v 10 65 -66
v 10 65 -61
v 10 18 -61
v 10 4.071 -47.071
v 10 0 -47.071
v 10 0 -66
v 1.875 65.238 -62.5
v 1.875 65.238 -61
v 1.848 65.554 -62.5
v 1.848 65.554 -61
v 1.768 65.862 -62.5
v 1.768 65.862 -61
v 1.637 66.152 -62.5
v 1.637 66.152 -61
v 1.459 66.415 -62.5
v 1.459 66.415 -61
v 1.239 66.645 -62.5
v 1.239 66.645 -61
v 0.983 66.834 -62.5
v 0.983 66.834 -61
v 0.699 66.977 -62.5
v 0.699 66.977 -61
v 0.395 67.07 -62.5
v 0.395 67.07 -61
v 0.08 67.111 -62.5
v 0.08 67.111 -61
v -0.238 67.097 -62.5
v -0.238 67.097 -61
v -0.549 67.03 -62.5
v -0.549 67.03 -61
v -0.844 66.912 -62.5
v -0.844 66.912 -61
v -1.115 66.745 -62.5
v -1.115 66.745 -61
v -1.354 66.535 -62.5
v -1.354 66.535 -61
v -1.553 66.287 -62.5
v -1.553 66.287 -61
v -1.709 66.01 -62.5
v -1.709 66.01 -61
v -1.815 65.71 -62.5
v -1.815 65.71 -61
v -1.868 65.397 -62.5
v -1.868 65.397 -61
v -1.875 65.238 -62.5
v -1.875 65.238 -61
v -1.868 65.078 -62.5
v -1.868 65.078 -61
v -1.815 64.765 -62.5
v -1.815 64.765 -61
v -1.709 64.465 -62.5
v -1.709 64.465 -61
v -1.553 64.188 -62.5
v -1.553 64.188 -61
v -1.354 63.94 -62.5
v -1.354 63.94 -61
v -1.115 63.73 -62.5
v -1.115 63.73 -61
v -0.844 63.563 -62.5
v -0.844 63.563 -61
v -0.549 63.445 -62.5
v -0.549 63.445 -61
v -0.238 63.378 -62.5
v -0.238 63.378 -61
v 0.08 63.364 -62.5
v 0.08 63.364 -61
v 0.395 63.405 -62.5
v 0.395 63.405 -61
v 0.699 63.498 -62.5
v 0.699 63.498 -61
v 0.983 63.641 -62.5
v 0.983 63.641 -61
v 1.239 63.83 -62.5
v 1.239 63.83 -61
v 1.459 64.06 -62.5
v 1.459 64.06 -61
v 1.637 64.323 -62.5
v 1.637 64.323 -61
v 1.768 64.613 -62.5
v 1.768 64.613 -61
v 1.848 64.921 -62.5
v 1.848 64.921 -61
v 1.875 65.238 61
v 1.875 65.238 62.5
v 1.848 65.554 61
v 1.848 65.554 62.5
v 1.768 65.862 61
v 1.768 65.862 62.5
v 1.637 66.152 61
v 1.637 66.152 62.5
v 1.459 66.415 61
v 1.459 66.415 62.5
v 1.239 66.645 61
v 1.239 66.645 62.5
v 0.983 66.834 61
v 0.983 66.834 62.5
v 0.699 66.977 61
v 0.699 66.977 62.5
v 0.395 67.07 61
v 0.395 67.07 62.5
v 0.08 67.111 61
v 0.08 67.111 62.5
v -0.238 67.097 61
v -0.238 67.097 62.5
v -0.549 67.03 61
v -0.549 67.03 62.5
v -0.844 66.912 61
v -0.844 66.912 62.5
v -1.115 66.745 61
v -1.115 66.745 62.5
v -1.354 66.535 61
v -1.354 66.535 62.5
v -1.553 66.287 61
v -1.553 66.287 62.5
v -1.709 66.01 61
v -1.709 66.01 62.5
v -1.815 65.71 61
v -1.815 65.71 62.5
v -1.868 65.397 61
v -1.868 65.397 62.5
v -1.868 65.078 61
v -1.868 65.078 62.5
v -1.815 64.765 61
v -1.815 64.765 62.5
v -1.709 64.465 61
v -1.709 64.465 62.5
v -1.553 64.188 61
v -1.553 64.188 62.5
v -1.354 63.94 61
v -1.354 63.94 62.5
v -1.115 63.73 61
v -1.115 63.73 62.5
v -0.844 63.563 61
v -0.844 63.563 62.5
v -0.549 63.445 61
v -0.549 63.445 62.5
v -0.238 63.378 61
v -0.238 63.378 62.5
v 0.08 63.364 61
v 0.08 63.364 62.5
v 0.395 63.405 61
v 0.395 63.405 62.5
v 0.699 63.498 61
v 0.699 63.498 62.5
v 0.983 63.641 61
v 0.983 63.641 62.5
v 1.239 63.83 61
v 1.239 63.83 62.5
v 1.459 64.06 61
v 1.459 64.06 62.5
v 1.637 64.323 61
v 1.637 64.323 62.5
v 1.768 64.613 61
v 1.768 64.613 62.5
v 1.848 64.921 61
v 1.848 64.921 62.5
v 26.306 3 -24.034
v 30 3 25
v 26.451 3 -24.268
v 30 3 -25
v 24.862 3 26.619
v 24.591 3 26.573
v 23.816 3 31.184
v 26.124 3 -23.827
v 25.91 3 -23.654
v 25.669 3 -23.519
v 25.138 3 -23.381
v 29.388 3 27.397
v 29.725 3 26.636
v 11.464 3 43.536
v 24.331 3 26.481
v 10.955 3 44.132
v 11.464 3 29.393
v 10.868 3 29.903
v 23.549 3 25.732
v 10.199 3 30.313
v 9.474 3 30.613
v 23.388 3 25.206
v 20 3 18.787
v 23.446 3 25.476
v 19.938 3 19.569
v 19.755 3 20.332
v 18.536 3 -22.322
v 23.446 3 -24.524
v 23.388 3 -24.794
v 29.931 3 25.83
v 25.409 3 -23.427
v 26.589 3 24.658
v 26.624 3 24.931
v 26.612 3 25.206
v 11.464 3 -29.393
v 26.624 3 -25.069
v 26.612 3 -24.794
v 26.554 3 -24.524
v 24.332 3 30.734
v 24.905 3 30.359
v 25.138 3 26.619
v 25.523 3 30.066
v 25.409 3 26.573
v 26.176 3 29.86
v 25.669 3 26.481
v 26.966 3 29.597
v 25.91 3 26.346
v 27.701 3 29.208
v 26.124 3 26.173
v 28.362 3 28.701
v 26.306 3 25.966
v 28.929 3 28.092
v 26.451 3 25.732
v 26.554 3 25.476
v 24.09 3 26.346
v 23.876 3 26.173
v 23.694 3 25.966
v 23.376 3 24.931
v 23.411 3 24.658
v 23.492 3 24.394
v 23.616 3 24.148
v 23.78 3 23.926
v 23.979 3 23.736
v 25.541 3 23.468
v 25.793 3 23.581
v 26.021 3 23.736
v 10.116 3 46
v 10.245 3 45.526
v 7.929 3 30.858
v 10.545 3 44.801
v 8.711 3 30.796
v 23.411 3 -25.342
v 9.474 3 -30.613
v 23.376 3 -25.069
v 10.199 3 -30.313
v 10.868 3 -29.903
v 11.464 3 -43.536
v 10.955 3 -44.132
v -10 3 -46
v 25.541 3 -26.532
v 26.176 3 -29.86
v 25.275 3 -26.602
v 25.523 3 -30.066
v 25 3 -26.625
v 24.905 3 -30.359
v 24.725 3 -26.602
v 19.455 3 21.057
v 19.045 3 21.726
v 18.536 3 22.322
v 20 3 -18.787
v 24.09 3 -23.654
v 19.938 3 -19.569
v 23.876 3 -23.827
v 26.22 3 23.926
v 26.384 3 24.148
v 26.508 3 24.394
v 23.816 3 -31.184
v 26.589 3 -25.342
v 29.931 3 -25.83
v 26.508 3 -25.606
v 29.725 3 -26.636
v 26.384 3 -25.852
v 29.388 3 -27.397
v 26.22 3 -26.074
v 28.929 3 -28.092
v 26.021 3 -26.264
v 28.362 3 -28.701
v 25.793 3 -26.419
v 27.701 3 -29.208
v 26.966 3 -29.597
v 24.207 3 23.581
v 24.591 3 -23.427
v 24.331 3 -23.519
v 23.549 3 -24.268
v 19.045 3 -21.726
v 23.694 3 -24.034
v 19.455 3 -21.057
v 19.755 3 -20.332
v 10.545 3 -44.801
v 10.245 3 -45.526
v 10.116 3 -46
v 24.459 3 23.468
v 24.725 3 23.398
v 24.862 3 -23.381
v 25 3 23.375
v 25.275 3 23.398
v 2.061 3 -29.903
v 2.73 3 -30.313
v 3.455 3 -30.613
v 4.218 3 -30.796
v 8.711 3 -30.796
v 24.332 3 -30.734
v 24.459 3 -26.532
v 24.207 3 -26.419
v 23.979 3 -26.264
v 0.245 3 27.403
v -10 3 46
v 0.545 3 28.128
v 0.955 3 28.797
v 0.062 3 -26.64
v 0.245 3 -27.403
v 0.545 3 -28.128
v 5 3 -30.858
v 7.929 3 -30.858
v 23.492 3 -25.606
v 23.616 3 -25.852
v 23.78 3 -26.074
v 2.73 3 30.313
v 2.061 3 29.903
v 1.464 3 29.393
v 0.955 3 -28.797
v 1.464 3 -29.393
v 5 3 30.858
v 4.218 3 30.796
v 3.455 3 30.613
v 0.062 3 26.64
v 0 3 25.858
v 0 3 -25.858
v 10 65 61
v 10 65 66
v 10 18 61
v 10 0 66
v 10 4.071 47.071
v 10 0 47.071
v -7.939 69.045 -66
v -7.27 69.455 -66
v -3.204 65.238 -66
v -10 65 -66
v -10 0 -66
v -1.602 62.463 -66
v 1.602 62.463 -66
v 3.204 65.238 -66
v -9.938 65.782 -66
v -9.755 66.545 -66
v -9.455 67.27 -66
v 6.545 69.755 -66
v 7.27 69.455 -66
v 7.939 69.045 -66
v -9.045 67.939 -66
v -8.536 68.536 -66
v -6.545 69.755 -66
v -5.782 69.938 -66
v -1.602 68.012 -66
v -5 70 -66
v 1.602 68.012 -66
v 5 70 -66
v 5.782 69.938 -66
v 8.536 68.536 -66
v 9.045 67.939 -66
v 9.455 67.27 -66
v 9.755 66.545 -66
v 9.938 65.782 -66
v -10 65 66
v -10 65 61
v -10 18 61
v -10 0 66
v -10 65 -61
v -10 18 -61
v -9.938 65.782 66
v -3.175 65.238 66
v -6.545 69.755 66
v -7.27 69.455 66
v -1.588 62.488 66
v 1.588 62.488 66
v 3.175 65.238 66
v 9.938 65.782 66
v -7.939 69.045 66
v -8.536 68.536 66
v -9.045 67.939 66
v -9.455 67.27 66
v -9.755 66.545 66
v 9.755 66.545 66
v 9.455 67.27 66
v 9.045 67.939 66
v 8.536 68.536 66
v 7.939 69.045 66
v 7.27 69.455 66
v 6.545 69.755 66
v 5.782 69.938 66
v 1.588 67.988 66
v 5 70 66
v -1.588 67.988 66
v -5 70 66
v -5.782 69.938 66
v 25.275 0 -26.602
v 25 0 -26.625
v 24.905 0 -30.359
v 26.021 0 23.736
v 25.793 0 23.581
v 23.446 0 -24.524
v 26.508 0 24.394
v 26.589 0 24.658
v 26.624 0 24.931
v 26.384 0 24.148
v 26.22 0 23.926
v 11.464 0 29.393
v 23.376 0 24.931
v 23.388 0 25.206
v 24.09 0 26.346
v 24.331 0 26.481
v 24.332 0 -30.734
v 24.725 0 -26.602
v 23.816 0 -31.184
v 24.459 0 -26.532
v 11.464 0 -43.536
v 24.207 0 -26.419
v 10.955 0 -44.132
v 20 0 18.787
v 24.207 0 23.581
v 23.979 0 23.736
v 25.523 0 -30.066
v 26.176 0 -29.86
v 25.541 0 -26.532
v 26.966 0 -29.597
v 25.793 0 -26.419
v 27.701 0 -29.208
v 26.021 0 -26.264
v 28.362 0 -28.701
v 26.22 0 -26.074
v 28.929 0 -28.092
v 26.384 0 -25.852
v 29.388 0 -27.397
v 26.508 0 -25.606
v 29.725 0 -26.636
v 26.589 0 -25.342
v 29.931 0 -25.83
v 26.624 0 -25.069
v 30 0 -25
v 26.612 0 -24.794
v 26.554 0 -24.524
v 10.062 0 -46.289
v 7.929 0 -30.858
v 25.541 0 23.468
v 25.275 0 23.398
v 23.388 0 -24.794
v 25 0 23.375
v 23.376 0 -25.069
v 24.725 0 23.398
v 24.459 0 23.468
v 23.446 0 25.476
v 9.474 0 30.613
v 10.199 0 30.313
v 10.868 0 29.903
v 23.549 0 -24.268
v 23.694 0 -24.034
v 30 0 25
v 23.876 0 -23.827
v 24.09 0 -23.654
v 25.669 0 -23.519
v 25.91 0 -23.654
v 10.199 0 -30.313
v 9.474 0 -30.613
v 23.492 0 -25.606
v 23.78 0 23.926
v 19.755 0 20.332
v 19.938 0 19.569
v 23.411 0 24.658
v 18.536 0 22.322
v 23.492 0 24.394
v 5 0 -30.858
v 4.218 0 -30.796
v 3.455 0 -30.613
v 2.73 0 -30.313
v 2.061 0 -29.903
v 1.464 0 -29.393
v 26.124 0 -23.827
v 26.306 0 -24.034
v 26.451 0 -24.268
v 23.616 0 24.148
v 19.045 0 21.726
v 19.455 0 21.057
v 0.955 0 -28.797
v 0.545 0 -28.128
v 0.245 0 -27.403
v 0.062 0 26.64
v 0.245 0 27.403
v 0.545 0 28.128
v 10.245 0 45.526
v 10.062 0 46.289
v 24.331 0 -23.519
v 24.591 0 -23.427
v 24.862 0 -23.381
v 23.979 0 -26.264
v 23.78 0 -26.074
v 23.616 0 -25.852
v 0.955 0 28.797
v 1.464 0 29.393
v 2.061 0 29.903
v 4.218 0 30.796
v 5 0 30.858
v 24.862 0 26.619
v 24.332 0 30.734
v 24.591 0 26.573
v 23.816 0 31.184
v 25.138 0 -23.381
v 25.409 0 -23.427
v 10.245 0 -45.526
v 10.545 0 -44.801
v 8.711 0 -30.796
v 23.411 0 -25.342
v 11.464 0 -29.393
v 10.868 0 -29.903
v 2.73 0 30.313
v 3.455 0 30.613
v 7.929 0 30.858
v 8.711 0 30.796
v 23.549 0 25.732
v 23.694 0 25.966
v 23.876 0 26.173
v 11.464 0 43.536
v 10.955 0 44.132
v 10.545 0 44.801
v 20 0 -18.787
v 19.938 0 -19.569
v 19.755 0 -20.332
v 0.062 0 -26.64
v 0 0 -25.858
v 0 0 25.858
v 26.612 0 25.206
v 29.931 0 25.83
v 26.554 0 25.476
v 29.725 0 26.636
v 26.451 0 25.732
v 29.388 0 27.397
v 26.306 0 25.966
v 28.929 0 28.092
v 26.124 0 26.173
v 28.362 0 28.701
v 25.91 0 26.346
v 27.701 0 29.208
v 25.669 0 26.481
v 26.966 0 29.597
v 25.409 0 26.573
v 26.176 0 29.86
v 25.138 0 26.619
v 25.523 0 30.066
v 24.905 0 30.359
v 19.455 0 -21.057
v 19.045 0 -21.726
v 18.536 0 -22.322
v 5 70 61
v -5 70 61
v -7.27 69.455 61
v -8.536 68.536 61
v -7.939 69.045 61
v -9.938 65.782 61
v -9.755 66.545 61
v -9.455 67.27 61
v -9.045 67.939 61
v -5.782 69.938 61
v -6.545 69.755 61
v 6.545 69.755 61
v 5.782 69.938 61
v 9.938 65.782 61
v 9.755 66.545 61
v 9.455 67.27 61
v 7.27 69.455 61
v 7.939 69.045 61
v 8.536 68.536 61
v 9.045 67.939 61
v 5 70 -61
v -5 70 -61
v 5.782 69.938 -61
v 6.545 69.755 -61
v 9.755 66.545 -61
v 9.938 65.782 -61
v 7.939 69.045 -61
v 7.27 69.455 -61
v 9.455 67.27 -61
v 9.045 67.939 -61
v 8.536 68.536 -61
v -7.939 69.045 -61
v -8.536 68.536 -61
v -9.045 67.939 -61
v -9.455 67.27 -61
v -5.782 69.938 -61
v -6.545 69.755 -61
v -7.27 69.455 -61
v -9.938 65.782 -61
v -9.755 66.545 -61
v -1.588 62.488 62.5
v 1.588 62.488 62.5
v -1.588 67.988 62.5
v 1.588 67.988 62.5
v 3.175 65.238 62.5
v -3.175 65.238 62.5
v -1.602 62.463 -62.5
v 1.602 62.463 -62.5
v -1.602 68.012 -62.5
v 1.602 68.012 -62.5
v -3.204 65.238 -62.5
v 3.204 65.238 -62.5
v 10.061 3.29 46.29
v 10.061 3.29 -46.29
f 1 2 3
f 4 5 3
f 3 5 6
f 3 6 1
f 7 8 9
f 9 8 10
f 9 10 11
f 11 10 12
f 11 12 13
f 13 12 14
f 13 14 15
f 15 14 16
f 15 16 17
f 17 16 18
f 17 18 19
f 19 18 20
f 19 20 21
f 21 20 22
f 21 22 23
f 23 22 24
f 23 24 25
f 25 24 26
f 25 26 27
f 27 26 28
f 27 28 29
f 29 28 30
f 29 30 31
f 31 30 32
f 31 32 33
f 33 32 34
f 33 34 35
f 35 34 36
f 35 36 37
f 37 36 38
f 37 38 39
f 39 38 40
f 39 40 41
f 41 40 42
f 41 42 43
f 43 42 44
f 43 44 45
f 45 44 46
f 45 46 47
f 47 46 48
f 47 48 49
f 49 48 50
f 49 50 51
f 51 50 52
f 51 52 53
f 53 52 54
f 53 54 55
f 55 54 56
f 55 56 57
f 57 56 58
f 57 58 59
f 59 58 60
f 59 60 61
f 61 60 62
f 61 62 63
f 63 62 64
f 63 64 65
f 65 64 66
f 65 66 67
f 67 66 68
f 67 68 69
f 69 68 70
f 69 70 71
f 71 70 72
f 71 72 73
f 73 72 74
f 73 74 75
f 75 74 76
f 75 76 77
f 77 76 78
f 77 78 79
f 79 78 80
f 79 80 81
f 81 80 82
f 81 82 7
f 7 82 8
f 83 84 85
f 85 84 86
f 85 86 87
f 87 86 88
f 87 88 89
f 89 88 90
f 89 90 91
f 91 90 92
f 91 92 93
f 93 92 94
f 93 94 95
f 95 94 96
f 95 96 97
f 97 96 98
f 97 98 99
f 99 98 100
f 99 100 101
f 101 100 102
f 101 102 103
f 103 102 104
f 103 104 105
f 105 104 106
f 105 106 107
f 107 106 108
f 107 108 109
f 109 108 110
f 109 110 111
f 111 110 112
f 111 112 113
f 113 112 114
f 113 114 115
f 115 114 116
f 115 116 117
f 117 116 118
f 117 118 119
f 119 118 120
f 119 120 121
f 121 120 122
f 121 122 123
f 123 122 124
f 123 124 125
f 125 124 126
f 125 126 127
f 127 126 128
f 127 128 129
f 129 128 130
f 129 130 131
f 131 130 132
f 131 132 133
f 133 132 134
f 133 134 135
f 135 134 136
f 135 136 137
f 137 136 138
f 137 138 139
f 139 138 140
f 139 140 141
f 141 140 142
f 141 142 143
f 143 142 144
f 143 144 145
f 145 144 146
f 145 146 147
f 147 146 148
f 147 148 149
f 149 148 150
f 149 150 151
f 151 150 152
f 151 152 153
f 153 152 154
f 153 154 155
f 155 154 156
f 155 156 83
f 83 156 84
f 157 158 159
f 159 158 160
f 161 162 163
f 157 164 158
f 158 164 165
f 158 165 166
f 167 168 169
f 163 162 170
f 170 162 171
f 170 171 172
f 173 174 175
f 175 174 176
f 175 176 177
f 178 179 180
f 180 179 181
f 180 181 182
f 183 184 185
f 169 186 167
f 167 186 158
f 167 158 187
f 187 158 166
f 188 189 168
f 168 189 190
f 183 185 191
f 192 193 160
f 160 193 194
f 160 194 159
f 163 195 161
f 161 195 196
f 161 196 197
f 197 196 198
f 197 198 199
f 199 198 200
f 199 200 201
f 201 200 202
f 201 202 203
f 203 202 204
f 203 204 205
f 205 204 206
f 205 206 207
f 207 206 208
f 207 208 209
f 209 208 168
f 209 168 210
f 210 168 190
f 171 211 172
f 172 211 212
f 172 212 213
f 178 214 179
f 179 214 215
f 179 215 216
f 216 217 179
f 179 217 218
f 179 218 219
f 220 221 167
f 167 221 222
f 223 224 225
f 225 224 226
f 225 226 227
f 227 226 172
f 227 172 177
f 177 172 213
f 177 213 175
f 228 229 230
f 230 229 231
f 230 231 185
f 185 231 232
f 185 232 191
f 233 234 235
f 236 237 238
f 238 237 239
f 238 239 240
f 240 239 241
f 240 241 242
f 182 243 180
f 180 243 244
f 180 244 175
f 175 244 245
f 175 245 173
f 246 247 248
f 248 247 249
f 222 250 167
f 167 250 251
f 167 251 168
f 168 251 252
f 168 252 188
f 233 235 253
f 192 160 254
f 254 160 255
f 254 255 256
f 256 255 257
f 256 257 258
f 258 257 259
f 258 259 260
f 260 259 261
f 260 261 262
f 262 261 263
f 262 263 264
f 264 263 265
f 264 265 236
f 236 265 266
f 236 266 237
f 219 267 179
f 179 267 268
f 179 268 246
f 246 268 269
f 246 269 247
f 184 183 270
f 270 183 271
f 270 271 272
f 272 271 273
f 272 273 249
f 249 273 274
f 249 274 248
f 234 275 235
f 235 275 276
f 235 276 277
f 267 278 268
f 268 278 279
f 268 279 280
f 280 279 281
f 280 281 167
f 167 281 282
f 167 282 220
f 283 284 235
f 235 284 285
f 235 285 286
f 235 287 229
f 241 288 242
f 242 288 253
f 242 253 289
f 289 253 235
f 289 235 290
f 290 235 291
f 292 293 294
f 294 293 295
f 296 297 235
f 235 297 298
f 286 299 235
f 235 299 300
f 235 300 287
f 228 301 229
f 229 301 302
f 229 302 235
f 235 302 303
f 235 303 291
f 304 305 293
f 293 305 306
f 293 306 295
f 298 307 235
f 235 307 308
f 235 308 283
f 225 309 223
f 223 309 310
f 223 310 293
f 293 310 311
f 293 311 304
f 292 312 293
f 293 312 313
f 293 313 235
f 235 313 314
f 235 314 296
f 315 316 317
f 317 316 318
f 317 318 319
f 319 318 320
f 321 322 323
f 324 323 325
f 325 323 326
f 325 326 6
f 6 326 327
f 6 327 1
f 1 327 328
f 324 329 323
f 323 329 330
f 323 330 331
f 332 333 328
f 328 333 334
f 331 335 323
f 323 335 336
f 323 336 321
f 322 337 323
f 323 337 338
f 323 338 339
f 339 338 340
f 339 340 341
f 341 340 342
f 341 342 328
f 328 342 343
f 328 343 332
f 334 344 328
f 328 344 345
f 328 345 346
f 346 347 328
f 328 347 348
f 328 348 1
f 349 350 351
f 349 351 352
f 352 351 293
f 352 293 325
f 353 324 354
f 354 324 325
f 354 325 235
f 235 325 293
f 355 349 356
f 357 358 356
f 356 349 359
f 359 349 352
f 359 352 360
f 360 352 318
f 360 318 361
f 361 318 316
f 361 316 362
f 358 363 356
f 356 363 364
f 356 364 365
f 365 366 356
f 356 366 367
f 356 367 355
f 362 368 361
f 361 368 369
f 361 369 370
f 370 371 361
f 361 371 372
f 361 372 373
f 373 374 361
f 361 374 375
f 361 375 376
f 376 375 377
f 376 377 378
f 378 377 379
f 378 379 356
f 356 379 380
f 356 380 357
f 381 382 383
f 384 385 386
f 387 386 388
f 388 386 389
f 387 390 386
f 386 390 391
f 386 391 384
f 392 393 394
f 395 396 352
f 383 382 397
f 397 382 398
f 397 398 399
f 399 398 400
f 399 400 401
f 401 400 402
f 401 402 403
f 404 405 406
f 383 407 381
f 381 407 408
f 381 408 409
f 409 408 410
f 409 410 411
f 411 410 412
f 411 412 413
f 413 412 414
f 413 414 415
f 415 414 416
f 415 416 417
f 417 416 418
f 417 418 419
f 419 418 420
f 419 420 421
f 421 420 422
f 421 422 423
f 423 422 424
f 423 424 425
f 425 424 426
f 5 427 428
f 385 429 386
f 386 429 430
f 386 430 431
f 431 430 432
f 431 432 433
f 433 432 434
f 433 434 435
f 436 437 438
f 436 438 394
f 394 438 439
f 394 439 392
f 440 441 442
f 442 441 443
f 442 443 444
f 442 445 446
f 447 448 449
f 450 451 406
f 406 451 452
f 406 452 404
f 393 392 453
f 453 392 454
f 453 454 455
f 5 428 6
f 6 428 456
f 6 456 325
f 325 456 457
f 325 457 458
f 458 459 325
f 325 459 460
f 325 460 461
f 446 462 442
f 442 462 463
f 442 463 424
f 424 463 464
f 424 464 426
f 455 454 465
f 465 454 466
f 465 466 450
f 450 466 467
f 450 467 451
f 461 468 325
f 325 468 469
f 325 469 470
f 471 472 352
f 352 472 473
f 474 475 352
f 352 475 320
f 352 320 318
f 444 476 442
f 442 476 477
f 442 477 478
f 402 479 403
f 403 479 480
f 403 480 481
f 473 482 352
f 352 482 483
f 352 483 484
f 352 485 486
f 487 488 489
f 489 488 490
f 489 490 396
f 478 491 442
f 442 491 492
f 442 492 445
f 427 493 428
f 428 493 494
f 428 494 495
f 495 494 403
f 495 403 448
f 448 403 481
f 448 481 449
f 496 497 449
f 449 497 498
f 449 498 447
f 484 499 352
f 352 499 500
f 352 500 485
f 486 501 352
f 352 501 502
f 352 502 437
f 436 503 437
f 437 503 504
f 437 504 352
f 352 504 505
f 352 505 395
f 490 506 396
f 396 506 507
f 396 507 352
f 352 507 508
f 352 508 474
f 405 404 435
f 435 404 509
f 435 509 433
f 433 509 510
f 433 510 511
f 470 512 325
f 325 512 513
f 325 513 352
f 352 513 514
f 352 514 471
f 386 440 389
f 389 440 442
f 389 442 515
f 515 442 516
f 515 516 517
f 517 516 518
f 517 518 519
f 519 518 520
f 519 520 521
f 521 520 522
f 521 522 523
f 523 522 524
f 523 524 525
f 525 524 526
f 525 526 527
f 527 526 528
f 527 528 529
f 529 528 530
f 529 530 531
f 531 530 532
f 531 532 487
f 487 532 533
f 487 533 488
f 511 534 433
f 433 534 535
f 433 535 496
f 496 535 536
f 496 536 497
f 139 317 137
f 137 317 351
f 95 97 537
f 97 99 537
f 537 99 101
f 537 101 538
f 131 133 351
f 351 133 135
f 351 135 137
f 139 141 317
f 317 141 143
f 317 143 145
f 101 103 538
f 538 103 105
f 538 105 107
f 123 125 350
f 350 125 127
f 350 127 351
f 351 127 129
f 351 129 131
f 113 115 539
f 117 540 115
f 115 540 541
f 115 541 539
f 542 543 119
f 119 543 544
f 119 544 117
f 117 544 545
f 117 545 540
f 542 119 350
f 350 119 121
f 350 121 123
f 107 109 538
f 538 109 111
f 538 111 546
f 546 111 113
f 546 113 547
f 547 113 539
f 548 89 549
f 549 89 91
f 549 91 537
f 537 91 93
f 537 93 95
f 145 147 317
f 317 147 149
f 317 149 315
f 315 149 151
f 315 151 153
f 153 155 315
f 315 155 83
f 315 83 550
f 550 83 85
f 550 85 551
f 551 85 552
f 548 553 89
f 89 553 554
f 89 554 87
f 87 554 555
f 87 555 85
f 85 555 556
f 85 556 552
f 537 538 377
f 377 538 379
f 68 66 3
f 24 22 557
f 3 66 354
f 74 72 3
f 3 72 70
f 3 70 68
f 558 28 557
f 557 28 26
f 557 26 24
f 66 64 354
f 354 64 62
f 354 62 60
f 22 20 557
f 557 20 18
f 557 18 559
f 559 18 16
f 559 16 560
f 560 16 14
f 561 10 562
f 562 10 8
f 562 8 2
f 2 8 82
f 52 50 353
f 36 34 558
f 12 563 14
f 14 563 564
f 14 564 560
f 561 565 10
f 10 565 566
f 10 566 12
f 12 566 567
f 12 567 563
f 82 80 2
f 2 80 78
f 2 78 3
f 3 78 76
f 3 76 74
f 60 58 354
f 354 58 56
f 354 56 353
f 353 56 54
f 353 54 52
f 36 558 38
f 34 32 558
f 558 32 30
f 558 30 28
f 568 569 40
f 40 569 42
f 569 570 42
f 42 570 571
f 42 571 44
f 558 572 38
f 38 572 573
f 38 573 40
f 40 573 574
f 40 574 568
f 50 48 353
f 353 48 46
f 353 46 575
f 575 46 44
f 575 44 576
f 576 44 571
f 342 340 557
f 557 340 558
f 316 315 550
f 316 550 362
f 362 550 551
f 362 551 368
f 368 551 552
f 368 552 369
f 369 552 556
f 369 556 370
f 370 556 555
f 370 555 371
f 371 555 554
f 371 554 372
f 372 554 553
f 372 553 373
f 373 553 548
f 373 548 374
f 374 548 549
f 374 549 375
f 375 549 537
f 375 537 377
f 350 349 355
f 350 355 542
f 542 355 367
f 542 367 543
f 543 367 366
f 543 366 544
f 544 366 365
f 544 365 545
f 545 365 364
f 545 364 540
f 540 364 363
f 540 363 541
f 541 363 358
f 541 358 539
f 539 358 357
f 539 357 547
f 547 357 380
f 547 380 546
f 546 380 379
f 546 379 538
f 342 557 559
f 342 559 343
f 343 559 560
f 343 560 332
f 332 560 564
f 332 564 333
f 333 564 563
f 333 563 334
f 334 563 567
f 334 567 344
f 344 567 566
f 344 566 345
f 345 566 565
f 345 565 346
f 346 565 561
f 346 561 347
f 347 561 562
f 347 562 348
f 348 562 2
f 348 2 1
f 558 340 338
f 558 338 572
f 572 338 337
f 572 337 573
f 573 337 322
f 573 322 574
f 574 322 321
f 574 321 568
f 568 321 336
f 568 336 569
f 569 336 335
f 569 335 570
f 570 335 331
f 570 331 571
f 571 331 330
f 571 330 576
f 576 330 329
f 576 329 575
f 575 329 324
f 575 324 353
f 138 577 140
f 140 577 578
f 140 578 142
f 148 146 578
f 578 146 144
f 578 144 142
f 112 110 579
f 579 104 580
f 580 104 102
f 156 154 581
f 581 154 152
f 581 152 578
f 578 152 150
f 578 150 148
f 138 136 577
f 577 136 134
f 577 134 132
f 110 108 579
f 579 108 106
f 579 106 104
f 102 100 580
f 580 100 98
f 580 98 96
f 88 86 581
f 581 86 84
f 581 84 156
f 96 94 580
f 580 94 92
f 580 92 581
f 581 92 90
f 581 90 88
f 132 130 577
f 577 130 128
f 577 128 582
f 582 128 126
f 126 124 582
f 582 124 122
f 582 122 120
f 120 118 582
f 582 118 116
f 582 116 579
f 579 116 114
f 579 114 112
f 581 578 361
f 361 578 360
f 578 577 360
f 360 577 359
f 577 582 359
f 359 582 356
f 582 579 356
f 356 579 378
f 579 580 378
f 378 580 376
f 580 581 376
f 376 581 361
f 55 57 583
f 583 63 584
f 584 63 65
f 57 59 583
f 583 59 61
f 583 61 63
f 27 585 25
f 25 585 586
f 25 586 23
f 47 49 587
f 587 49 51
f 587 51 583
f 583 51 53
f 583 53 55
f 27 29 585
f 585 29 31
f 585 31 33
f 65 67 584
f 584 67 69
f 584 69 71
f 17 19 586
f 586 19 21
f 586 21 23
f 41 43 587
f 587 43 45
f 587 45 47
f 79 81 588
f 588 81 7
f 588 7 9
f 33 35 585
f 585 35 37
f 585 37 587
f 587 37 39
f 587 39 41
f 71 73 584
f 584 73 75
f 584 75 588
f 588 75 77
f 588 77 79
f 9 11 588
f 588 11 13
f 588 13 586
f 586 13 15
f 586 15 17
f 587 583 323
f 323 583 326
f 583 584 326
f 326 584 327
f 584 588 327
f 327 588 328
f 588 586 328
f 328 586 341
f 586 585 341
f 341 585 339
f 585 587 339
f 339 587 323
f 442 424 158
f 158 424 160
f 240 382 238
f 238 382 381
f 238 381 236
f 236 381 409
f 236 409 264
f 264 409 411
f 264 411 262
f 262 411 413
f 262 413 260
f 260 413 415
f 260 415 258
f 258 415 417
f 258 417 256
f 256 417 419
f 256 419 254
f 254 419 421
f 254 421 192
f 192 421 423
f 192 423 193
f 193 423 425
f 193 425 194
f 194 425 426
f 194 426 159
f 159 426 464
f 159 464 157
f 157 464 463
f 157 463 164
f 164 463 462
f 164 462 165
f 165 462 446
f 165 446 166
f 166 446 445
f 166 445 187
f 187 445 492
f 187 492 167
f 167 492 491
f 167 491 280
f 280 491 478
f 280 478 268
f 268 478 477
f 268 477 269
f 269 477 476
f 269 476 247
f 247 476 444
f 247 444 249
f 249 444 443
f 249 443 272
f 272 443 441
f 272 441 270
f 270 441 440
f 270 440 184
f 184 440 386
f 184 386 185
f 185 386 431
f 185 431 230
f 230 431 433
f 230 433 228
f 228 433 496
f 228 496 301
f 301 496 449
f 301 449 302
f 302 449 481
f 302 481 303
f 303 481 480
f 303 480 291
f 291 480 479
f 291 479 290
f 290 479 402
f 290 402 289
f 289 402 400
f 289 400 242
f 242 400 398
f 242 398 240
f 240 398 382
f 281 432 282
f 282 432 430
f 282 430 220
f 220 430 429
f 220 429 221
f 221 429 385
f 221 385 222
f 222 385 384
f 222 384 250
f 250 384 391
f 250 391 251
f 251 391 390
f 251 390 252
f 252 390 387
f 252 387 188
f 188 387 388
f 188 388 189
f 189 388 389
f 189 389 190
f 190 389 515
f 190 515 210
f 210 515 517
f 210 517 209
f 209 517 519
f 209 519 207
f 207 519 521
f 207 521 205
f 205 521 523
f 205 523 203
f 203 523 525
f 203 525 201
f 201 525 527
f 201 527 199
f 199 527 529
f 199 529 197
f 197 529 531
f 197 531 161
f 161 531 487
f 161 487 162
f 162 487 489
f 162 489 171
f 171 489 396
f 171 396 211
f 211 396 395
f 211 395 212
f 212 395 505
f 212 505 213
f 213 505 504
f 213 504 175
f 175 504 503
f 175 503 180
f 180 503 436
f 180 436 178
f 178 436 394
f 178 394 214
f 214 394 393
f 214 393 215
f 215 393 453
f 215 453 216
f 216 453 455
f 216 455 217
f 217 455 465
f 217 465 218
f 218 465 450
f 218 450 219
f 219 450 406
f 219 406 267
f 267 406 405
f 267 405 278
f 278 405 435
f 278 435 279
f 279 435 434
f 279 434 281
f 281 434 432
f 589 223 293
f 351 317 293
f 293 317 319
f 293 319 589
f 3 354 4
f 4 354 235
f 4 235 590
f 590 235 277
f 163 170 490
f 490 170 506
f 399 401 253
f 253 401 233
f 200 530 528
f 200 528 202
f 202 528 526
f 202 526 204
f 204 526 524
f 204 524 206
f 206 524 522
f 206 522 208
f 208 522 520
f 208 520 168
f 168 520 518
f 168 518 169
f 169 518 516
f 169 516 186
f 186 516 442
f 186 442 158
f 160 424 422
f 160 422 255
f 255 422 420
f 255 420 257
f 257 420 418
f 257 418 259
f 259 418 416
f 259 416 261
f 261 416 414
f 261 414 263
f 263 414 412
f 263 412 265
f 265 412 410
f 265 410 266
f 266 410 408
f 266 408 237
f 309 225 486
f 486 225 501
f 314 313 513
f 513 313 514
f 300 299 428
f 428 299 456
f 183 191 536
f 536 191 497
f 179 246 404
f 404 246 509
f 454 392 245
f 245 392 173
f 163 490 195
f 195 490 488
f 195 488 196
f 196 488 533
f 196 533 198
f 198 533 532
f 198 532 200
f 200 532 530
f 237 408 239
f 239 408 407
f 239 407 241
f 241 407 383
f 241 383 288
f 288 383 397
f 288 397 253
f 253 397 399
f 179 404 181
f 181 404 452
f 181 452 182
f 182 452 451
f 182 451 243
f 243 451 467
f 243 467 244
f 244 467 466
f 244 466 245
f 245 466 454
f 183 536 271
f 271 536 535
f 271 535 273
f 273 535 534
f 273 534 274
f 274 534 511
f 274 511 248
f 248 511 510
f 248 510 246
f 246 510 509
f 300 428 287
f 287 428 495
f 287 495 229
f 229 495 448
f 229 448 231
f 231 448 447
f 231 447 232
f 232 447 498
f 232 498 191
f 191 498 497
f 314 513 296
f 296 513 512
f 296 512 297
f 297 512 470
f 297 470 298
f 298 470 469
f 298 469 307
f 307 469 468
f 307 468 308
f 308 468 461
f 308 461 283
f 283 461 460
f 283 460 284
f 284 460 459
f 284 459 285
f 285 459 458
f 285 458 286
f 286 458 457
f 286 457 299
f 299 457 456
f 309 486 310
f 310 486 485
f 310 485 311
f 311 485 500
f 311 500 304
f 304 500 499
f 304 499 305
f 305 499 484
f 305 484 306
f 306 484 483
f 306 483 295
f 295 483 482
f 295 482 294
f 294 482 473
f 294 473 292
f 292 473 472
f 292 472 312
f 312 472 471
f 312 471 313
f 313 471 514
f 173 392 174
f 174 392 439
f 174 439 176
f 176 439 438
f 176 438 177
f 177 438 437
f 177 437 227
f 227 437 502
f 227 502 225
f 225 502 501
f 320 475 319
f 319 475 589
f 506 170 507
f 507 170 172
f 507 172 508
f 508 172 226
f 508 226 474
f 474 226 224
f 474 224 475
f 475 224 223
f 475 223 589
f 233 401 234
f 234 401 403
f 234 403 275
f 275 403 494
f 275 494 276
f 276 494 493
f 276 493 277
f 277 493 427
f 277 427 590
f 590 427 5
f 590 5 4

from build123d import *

# Parameters (mm, degrees)
SKETCH1_W           = 20
SKETCH1_H           = 132
BOSS_EXTRUDE1_DEPTH = 3
SKETCH2_W           = 20
SKETCH2_H           = 4.999999999999993
BOSS_EXTRUDE2_DEPTH = 67
SKETCH4_R           = 1.875000000000003
CUT_EXTRUDE1_DEPTH  = 150.74645237867907
FILLET3_R           = 5
CUT_EXTRUDE2_DEPTH  = 3.5
CUT_EXTRUDE3_DEPTH  = 3.5
SKETCH9_R           = 1.625000000000004
BOSS_EXTRUDE3_DEPTH = 3
CHAMFER1_SIZE       = 15
FILLET4_R           = 5
CUT_EXTRUDE4_DEPTH  = 99.71676655968832
FILLET5_R           = 5


with BuildPart() as part:
    # Sketch1 → Boss-Extrude1 (new body)
    with BuildSketch(Plane(origin=(0, 0, 0), x_dir=(1, 0, 0), z_dir=(0, 1, 0))):
        Rectangle(SKETCH1_W, SKETCH1_H)
    extrude(amount=BOSS_EXTRUDE1_DEPTH)

    # Sketch2 → Boss-Extrude2 (add)
    with BuildSketch(Plane(origin=(0, 3, 0), x_dir=(1, 0, 0), z_dir=(0, 1, 0))):
        Polygon((-10, -66), (10, -66), (9.999999999999998, -61.00000000000001), (-10, -61.00000000000001), align=None)
        with Locations((0, 63.5)):
            Rectangle(SKETCH2_W, SKETCH2_H)
    extrude(amount=BOSS_EXTRUDE2_DEPTH)

    # Sketch4 → Cut-Extrude1 (cut, through all)
    with BuildSketch(Plane.XY.offset(66)):
        with Locations((0, 65.2375)):
            Circle(SKETCH4_R)
    extrude(amount=-CUT_EXTRUDE1_DEPTH, mode=Mode.SUBTRACT)

    # Fillet3
    fillet3_edges = [part.edges().sort_by_distance(p)[0] for p in [
        (-10, 70, 63.5),
        (10, 70, 63.5),
        (-10, 70, -63.5),
        (10, 70, -63.5),
    ]]
    fillet(fillet3_edges, radius=FILLET3_R)

    # Sketch6 → Cut-Extrude2 (cut)
    with BuildSketch(Plane.XY.offset(66)):
        Polygon((3.175426480542929, 65.2375), (1.5877132402714664, 67.9875), (-1.5877132402714669, 67.9875), (-3.1754264805429386, 65.23749999999998), (-1.5877132402714738, 62.487500000000004), (1.587713240271455, 62.487500000000004), align=None)
    extrude(amount=-CUT_EXTRUDE2_DEPTH, mode=Mode.SUBTRACT)

    # Sketch7 → Cut-Extrude3 (cut)
    with BuildSketch(Plane(origin=(0, 0, -66), x_dir=(-1, 0, 0), z_dir=(0, 0, -1))):
        Polygon((3.2042939940024326, 65.2375), (1.6021469970012208, 68.0125), (-1.6021469970012086, 68.0125), (-3.204293994002428, 65.23749999999998), (-1.6021469970012214, 62.4625), (1.602146997001218, 62.4625), align=None)
    extrude(amount=-CUT_EXTRUDE3_DEPTH, mode=Mode.SUBTRACT)

    # Sketch9 → Boss-Extrude3 (add)
    with BuildSketch(Plane.XZ):
        Polygon((30.000000000000007, -29.999999999999996), (10, -30), (10, 30.000000000000004), (30.000000000000007, 30.000000000000004), align=None)
        with Locations(Location((25, -25, 0), (0, 0, 270))):
            Circle(SKETCH9_R, mode=Mode.SUBTRACT)
        with Locations(Location((25, 25, 0), (0, 0, 270))):
            Circle(SKETCH9_R, mode=Mode.SUBTRACT)
    extrude(amount=-BOSS_EXTRUDE3_DEPTH)

    # Chamfer1
    chamfer1_edges = [part.edges().sort_by_distance(p)[0] for p in [
        (10, 1.5, 30.000000000000004),
        (10, 1.5, -30),
        (-1.78e-15, 3, 61.00000000000001),
        (0, 3, -61.00000000000001),
    ]]
    chamfer(chamfer1_edges, length=CHAMFER1_SIZE)

    # Fillet4
    fillet4_edges = [part.edges().sort_by_distance(p)[0] for p in [
        (30.000000000000007, 1.5, 30.000000000000004),
        (30.000000000000007, 1.5, -29.999999999999996),
    ]]
    fillet(fillet4_edges, radius=FILLET4_R - 0.0001)  # a hair under: the kernel refuses the full size

    # Sketch10 → Cut-Extrude4 (cut, through all)
    with BuildSketch(Plane(origin=(0, 3, 0), x_dir=(1, 0, 0), z_dir=(0, 1, 0))):
        Polygon((-7.92e-15, 30.857864376268985), (1.097e-14, -30.857864376268985), (10.00000000000001, -30.857864376268985), (20.000000000000004, -20.85786437626899), (20.000000000000004, 20.857864376268978), (9.999999999999991, 30.857864376268992), align=None)
    extrude(amount=-CUT_EXTRUDE4_DEPTH, mode=Mode.SUBTRACT)

    # Fillet5
    fillet5_edges = [part.edges().sort_by_distance(p)[0] for p in [
        (25, 1.5, 30),
        (10, 1.5, 45),
        (10, 1.5, -45),
        (25, 1.5, -29.999999999999996),
        (10.00000000000001, 1.5, 30.857864376268985),
        (1.097e-14, 1.5, 30.857864376268985),
        (-7.92e-15, 1.5, -30.857864376268985),
        (9.999999999999991, 1.5, -30.857864376268992),
        (20.000000000000004, 1.5, -20.857864376268978),
        (20.000000000000004, 1.5, 20.85786437626899),
    ]]
    fillet(fillet5_edges, radius=FILLET5_R)


solid = part.part
